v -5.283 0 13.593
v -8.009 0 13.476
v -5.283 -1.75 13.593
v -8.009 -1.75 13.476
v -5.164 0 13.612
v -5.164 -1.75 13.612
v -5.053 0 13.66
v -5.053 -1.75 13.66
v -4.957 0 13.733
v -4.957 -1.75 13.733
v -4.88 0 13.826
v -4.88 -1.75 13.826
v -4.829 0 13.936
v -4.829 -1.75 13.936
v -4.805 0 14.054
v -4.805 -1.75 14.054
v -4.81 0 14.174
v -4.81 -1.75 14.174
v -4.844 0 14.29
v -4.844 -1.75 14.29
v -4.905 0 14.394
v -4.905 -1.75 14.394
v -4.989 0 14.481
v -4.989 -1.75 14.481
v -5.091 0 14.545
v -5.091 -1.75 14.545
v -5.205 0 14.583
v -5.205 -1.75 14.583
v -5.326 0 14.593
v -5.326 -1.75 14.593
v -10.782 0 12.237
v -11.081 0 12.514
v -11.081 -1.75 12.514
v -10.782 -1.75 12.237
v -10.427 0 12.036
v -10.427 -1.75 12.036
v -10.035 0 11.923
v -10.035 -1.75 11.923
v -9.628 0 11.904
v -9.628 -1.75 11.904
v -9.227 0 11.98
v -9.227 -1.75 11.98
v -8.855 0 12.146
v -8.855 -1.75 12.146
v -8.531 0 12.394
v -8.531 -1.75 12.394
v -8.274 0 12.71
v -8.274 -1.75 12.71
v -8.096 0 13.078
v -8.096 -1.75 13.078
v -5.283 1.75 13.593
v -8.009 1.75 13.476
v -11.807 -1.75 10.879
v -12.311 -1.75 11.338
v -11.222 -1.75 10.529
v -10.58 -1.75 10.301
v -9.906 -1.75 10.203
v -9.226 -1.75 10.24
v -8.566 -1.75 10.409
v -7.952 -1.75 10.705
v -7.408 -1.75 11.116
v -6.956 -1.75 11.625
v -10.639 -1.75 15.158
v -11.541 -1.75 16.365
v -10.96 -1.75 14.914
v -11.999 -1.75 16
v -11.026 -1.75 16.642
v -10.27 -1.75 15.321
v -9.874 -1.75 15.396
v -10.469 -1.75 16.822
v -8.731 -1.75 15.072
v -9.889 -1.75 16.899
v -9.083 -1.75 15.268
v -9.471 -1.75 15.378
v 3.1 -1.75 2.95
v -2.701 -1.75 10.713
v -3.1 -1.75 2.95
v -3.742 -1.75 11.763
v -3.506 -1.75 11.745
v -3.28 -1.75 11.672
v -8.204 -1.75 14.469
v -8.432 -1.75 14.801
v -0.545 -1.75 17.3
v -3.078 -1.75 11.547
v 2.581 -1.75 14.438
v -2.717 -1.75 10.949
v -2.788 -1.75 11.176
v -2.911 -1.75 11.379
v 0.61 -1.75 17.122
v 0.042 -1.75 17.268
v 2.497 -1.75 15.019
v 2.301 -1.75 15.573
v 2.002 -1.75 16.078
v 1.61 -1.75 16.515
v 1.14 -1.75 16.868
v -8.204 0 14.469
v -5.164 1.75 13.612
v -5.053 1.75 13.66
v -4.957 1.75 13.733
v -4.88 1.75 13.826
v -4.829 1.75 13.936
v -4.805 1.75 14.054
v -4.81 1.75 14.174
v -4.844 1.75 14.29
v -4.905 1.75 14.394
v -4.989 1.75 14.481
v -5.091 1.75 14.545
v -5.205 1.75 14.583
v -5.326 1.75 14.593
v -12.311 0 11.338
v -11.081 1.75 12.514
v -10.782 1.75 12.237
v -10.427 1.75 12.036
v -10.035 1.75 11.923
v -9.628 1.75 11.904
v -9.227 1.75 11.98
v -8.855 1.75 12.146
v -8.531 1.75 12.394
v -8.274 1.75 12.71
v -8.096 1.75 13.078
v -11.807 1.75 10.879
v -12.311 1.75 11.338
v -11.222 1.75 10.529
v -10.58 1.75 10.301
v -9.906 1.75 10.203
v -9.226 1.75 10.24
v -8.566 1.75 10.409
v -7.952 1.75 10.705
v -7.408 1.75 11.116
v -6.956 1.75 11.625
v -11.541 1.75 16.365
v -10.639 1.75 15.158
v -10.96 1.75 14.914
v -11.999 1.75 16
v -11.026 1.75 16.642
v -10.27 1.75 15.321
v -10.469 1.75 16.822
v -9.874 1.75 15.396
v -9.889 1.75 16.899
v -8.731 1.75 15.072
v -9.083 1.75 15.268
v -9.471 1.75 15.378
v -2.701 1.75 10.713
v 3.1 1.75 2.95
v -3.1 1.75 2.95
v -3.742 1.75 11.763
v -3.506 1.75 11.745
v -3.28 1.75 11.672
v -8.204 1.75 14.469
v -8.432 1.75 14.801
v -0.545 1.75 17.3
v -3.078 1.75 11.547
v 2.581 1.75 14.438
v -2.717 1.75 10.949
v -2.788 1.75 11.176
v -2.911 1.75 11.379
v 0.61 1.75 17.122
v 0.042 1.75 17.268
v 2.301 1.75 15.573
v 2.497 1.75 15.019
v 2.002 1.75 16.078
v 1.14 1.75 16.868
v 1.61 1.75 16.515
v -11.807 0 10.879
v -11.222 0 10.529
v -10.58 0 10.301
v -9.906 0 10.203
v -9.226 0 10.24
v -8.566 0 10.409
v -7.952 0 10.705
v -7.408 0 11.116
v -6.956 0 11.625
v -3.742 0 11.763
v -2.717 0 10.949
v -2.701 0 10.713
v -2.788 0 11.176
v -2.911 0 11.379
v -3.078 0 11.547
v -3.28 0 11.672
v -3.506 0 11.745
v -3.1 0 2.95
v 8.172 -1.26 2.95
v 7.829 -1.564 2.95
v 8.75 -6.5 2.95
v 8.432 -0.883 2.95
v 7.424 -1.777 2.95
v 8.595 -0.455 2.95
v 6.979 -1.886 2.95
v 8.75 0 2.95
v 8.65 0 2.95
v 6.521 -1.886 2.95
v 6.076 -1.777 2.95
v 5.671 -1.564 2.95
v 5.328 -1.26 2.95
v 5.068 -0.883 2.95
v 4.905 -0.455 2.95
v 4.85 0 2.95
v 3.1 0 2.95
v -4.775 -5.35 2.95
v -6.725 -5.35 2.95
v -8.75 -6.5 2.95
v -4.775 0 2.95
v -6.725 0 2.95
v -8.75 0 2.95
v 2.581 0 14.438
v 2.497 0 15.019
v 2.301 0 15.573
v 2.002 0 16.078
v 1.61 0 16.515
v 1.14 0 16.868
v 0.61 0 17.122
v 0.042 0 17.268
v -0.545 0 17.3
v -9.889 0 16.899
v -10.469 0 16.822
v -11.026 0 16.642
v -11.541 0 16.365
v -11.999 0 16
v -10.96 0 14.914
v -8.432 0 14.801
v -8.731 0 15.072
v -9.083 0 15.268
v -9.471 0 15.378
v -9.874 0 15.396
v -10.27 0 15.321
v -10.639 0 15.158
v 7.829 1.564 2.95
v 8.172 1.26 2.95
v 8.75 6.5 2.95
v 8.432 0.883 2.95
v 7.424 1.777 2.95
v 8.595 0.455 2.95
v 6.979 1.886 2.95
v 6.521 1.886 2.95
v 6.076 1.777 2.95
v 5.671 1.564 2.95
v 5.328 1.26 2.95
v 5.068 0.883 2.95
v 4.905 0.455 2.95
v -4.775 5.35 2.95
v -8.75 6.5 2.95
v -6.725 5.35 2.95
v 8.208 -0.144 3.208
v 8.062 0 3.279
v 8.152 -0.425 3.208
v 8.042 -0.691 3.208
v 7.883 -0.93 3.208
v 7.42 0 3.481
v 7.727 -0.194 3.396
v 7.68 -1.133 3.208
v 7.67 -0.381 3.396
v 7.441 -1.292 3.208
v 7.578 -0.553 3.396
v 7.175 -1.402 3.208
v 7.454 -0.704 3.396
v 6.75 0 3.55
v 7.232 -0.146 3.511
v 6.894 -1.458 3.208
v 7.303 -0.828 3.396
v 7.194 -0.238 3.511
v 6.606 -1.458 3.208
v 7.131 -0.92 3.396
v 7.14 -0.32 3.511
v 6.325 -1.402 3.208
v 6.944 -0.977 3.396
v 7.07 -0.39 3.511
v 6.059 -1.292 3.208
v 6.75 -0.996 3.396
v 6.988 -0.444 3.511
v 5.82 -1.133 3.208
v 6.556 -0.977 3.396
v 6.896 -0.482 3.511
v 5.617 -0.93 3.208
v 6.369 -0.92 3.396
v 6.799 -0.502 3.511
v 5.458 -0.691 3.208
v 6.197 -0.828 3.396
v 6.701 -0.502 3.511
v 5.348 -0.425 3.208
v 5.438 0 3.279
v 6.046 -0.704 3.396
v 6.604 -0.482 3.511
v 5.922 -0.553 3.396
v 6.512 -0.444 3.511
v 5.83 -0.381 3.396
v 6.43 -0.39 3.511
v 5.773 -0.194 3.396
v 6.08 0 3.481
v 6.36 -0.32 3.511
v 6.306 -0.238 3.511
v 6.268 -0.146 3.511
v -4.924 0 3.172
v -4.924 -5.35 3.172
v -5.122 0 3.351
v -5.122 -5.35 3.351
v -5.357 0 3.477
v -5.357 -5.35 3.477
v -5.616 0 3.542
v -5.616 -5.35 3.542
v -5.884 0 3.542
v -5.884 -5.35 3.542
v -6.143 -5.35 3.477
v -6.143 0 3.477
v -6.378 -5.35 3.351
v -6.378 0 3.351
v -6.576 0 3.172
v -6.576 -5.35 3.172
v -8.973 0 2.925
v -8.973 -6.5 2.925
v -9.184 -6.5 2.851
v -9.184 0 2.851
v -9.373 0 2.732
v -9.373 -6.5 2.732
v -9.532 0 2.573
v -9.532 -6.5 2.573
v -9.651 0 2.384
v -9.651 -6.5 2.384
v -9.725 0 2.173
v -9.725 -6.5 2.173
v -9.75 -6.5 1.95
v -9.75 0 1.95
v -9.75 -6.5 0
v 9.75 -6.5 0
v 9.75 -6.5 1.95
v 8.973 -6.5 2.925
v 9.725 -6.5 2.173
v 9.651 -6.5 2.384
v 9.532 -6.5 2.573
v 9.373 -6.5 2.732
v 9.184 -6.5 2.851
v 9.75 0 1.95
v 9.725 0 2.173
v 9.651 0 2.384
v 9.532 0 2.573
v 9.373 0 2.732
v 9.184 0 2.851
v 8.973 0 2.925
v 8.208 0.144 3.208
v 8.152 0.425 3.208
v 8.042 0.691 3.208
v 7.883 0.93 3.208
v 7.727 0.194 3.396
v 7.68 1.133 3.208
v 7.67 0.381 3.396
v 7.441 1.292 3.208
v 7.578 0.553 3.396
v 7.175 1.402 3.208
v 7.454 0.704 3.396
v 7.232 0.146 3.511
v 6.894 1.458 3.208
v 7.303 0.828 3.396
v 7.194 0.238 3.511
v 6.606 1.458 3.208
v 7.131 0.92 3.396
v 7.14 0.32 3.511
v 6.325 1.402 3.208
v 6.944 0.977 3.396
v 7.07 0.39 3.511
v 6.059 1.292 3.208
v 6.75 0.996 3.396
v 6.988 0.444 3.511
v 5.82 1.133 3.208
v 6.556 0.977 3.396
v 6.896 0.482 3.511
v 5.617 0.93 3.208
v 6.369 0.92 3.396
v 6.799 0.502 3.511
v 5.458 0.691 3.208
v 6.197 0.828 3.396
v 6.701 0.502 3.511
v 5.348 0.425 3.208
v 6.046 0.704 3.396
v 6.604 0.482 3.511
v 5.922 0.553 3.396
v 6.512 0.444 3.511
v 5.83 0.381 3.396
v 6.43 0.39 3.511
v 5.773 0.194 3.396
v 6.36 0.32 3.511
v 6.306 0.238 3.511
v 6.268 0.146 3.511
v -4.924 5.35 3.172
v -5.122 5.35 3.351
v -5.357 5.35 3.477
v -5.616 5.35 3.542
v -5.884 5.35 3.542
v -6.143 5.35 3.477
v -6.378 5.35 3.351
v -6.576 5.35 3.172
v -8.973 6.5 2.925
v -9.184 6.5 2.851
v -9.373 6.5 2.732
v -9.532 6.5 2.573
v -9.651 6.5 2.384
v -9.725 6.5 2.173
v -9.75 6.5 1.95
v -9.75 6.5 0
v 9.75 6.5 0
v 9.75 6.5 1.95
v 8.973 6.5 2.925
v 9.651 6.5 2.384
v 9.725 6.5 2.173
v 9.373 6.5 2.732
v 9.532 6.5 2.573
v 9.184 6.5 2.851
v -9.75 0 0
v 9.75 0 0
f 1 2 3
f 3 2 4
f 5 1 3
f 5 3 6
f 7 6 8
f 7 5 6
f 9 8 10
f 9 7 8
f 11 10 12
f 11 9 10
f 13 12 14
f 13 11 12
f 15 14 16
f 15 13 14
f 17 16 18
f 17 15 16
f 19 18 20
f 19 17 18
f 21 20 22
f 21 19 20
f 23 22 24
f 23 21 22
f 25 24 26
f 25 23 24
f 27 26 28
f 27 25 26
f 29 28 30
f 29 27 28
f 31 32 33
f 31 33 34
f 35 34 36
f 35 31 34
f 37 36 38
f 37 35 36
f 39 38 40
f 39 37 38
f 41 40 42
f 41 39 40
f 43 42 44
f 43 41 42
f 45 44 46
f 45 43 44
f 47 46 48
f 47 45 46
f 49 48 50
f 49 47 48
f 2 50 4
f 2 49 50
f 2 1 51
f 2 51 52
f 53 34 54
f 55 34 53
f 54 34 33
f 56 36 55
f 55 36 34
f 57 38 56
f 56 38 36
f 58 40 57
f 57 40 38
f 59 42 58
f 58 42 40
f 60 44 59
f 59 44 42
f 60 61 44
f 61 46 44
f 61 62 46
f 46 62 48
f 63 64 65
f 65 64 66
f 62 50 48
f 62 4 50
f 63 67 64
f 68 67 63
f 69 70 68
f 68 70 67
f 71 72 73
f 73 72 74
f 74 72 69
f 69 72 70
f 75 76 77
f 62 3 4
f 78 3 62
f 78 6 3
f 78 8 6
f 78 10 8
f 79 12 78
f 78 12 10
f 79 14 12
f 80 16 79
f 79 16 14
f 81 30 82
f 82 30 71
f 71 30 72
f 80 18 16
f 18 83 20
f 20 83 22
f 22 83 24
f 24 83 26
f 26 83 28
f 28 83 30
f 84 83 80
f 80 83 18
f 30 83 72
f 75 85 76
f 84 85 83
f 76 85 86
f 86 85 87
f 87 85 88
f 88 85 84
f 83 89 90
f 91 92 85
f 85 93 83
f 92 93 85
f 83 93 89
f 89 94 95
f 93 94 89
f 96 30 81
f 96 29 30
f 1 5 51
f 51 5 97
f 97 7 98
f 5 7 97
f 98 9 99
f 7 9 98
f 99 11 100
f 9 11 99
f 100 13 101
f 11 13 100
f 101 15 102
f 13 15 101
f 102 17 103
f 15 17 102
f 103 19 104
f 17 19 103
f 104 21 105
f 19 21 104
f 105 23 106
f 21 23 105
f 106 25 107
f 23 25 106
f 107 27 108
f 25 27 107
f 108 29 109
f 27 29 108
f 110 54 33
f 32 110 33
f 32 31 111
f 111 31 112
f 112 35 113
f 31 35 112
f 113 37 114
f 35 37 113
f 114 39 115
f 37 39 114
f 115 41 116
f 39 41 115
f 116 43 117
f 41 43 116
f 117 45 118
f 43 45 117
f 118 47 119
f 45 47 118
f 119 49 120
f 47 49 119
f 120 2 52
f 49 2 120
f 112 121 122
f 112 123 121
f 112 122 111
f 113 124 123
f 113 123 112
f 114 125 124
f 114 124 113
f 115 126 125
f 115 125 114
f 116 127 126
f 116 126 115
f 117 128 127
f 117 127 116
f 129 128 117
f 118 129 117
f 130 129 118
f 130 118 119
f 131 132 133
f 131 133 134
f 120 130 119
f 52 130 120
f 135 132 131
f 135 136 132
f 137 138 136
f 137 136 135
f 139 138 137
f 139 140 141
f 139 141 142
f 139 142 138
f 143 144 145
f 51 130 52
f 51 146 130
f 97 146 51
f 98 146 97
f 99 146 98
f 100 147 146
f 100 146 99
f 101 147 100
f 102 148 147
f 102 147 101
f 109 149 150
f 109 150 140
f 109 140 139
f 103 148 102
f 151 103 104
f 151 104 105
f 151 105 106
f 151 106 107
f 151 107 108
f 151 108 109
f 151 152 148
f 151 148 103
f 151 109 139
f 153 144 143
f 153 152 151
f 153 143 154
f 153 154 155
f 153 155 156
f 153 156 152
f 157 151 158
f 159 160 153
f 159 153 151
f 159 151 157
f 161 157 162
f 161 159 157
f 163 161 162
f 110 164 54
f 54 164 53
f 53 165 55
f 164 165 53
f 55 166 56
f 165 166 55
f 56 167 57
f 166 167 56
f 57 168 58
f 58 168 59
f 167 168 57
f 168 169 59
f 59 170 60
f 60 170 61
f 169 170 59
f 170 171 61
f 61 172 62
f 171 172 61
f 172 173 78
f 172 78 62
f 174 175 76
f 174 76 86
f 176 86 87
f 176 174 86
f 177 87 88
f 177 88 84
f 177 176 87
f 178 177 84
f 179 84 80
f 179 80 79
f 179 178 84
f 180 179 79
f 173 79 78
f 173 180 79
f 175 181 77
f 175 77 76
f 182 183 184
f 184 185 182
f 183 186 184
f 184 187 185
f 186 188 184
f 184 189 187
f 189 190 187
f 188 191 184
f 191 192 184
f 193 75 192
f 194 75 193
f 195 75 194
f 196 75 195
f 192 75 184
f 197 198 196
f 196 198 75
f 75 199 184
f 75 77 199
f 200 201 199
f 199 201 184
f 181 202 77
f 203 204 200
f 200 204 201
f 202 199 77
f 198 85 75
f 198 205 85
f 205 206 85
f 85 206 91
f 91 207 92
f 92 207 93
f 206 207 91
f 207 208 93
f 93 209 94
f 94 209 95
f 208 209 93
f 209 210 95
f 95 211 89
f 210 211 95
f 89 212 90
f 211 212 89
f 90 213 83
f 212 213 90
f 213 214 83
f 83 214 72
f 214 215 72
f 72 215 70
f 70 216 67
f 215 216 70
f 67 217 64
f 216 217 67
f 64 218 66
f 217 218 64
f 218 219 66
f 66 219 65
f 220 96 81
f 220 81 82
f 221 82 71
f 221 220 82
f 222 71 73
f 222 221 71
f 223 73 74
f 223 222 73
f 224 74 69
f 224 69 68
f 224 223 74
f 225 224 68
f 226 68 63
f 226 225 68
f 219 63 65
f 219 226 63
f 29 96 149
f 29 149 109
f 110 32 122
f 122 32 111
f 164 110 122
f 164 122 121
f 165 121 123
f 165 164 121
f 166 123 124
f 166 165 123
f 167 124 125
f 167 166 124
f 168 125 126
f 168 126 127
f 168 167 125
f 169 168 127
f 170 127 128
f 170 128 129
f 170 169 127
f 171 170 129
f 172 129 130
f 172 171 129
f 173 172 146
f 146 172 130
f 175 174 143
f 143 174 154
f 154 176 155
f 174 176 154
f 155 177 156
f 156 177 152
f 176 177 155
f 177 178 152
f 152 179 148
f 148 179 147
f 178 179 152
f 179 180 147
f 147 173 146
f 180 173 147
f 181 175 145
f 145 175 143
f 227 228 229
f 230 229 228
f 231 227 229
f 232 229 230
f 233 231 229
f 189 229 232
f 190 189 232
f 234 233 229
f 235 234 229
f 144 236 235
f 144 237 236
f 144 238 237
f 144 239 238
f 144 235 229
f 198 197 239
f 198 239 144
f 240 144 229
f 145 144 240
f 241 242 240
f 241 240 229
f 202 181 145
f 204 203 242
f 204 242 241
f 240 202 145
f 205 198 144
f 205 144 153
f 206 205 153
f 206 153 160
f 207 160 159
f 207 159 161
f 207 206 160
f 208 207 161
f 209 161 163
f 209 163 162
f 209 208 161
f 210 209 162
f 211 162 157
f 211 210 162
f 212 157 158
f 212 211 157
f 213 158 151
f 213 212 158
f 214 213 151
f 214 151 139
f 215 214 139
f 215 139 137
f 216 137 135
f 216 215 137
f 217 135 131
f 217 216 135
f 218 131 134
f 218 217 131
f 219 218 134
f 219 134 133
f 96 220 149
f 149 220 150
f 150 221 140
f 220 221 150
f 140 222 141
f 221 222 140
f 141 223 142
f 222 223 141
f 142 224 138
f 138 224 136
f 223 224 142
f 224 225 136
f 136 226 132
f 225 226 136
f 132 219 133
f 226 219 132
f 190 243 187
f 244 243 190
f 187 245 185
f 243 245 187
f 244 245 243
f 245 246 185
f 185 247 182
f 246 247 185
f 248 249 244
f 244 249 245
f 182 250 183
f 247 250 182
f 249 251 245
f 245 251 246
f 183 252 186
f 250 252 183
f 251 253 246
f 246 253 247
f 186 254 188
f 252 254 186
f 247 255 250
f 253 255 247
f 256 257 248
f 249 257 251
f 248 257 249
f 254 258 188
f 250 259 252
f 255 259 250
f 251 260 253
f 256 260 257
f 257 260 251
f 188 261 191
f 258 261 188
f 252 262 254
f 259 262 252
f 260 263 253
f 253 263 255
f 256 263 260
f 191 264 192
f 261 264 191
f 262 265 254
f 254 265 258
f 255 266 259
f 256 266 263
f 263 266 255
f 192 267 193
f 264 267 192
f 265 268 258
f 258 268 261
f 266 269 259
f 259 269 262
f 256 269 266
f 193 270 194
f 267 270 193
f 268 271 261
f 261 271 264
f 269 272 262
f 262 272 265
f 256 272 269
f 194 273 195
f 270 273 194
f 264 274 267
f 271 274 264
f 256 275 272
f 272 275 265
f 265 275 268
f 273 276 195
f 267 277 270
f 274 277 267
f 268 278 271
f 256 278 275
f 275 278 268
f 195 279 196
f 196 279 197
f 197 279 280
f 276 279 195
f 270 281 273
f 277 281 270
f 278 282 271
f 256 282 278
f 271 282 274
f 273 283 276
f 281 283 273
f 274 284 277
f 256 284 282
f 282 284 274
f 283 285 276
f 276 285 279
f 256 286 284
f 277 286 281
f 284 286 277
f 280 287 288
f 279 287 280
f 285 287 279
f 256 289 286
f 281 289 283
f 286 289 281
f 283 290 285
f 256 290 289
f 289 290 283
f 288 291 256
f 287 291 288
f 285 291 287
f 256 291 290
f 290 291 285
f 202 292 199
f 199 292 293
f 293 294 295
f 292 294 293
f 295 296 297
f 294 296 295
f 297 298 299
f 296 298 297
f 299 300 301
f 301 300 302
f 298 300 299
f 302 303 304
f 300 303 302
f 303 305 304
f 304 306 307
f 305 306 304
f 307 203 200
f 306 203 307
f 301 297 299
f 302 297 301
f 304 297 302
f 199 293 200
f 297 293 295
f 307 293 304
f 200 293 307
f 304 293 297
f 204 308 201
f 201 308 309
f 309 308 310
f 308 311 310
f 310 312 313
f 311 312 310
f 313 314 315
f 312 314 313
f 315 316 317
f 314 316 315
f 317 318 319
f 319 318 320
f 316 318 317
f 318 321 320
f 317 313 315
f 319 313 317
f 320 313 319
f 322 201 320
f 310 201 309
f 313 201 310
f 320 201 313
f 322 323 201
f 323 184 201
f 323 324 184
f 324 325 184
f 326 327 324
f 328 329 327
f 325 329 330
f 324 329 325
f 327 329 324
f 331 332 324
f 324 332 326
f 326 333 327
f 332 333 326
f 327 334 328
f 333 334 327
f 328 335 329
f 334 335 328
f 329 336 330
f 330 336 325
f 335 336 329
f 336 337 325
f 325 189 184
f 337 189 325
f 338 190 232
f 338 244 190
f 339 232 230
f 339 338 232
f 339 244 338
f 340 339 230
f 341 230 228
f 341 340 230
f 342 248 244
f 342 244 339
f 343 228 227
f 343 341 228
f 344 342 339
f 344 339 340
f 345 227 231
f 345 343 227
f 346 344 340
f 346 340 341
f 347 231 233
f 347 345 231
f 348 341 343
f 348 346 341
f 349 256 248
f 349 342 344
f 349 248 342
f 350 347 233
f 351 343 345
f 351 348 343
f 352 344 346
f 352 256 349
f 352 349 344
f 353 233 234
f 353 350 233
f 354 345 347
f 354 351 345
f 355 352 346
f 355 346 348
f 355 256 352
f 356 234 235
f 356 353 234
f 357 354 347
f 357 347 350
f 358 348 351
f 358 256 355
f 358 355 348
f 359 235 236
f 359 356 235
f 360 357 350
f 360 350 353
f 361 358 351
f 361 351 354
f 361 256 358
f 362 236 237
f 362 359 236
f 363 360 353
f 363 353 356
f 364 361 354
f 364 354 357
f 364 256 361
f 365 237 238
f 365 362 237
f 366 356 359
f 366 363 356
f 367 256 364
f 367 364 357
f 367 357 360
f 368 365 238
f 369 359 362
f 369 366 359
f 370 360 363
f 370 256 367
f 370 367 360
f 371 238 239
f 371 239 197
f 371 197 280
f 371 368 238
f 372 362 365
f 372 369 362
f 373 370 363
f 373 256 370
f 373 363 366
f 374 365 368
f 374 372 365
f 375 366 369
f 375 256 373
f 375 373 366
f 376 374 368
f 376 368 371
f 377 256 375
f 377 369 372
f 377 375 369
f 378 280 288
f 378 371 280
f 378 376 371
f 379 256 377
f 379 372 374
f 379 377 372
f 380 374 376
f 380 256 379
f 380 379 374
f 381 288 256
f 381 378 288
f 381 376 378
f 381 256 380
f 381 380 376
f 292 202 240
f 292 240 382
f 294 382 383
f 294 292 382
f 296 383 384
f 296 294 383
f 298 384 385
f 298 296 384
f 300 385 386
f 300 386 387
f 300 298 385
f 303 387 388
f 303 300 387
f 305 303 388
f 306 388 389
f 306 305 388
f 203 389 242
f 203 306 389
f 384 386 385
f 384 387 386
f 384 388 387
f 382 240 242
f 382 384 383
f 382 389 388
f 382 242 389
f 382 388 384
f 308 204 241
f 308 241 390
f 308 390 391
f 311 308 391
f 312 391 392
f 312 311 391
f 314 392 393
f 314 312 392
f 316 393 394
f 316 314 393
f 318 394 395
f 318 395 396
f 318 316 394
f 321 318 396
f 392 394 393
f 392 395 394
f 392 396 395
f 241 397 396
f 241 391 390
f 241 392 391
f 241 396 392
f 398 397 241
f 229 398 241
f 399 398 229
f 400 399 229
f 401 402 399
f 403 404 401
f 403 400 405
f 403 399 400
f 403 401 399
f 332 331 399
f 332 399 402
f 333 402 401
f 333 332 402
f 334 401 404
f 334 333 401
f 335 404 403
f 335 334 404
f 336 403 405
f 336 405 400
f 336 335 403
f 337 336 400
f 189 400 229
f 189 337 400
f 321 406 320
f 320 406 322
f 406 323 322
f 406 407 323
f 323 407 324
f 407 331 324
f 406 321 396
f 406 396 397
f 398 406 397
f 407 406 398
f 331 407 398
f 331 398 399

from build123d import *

# Parameters (mm, degrees)
PAD_DEPTH        = 6.5
PAD001_DEPTH     = 5.35
REVOLUTION_ANGLE = -180
PAD002_DEPTH     = 1.75


with BuildPart() as part:
    # Sketch → Pad (new body)
    with BuildSketch(Plane.XZ):
        with BuildLine():
            Line((-9.75, 0), (9.75, 0))
            Line((9.75, 0), (9.75, 1.95))
            ThreePointArc((9.75, 1.95), (9.457107, 2.657107), (8.75, 2.95))
            Line((8.75, 2.95), (-8.75, 2.95))
            ThreePointArc((-8.75, 2.95), (-9.457107, 2.657107), (-9.75, 1.95))
            Line((-9.75, 1.95), (-9.75, 0))
        make_face()
    pad = extrude(amount=-PAD_DEPTH)

    # Sketch001 → Pad001 (join)
    with BuildSketch(Plane.XZ):
        with BuildLine():
            ThreePointArc((-4.775, 2.95), (-5.75, 3.55), (-6.725, 2.95))
            Line((-6.725, 2.95), (-4.775, 2.95))
        make_face()
    pad001 = extrude(amount=-PAD001_DEPTH)

    # Sketch002 → Revolution (revolve)
    with BuildSketch(Plane.XZ):
        with BuildLine():
            ThreePointArc((8.65, 2.95), (7.746243, 3.396436), (6.75, 3.55))
            Line((6.75, 3.55), (6.75, 0.241667))
            Line((8.65, 2.95), (6.75, 0.241667))
        make_face()
    revolution = revolve(axis=Axis((6.75, 0, 3.55), (0, 0, -1)), revolution_arc=REVOLUTION_ANGLE)

    # Sketch003 → Pad002 (join)
    with BuildSketch(Plane.XZ):
        with BuildLine():
            Line((-3.1, 2.95), (3.1, 2.95))
            Line((3.1, 2.95), (2.580696, 14.438223))
            ThreePointArc((2.580696, 14.438223), (1.609703, 16.515339), (-0.544721, 17.3))
            Line((-0.544721, 17.3), (-9.889288, 16.899445))
            ThreePointArc((-9.889288, 16.899445), (-11.025908, 16.641713), (-11.998693, 15.999824))
            Line((-11.998693, 15.999824), (-10.959931, 14.914345))
            ThreePointArc((-8.203688, 14.469402), (-9.471106, 15.377634), (-10.959931, 14.914345))
            Line((-8.203688, 14.469402), (-5.32558, 14.592772))
            ThreePointArc((-5.282715, 13.592772), (-4.804147, 14.114205), (-5.32558, 14.592772))
            Line((-5.282715, 13.592772), (-8.008679, 13.475924))
            ThreePointArc((-11.081461, 12.514345), (-9.227358, 11.979867), (-8.008679, 13.475924))
            Line((-12.311103, 11.337624), (-11.081461, 12.514345))
            ThreePointArc((-12.311103, 11.337624), (-9.56498, 10.204409), (-6.956, 11.62518))
            Line((-3.742396, 11.762931), (-6.956, 11.62518))
            ThreePointArc((-2.700889, 10.712502), (-2.989454, 11.467933), (-3.742396, 11.762931))
            Line((-3.1, 2.95), (-2.700889, 10.712502))
        make_face()
    pad002 = extrude(amount=-PAD002_DEPTH)

    # Mirrored: Pad, Pad001, Revolution, Pad002 across XZ
    add(pad.mirror(Plane.XZ))
    add(pad001.mirror(Plane.XZ))
    add(revolution.mirror(Plane.XZ))
    add(pad002.mirror(Plane.XZ))


solid = part.part
